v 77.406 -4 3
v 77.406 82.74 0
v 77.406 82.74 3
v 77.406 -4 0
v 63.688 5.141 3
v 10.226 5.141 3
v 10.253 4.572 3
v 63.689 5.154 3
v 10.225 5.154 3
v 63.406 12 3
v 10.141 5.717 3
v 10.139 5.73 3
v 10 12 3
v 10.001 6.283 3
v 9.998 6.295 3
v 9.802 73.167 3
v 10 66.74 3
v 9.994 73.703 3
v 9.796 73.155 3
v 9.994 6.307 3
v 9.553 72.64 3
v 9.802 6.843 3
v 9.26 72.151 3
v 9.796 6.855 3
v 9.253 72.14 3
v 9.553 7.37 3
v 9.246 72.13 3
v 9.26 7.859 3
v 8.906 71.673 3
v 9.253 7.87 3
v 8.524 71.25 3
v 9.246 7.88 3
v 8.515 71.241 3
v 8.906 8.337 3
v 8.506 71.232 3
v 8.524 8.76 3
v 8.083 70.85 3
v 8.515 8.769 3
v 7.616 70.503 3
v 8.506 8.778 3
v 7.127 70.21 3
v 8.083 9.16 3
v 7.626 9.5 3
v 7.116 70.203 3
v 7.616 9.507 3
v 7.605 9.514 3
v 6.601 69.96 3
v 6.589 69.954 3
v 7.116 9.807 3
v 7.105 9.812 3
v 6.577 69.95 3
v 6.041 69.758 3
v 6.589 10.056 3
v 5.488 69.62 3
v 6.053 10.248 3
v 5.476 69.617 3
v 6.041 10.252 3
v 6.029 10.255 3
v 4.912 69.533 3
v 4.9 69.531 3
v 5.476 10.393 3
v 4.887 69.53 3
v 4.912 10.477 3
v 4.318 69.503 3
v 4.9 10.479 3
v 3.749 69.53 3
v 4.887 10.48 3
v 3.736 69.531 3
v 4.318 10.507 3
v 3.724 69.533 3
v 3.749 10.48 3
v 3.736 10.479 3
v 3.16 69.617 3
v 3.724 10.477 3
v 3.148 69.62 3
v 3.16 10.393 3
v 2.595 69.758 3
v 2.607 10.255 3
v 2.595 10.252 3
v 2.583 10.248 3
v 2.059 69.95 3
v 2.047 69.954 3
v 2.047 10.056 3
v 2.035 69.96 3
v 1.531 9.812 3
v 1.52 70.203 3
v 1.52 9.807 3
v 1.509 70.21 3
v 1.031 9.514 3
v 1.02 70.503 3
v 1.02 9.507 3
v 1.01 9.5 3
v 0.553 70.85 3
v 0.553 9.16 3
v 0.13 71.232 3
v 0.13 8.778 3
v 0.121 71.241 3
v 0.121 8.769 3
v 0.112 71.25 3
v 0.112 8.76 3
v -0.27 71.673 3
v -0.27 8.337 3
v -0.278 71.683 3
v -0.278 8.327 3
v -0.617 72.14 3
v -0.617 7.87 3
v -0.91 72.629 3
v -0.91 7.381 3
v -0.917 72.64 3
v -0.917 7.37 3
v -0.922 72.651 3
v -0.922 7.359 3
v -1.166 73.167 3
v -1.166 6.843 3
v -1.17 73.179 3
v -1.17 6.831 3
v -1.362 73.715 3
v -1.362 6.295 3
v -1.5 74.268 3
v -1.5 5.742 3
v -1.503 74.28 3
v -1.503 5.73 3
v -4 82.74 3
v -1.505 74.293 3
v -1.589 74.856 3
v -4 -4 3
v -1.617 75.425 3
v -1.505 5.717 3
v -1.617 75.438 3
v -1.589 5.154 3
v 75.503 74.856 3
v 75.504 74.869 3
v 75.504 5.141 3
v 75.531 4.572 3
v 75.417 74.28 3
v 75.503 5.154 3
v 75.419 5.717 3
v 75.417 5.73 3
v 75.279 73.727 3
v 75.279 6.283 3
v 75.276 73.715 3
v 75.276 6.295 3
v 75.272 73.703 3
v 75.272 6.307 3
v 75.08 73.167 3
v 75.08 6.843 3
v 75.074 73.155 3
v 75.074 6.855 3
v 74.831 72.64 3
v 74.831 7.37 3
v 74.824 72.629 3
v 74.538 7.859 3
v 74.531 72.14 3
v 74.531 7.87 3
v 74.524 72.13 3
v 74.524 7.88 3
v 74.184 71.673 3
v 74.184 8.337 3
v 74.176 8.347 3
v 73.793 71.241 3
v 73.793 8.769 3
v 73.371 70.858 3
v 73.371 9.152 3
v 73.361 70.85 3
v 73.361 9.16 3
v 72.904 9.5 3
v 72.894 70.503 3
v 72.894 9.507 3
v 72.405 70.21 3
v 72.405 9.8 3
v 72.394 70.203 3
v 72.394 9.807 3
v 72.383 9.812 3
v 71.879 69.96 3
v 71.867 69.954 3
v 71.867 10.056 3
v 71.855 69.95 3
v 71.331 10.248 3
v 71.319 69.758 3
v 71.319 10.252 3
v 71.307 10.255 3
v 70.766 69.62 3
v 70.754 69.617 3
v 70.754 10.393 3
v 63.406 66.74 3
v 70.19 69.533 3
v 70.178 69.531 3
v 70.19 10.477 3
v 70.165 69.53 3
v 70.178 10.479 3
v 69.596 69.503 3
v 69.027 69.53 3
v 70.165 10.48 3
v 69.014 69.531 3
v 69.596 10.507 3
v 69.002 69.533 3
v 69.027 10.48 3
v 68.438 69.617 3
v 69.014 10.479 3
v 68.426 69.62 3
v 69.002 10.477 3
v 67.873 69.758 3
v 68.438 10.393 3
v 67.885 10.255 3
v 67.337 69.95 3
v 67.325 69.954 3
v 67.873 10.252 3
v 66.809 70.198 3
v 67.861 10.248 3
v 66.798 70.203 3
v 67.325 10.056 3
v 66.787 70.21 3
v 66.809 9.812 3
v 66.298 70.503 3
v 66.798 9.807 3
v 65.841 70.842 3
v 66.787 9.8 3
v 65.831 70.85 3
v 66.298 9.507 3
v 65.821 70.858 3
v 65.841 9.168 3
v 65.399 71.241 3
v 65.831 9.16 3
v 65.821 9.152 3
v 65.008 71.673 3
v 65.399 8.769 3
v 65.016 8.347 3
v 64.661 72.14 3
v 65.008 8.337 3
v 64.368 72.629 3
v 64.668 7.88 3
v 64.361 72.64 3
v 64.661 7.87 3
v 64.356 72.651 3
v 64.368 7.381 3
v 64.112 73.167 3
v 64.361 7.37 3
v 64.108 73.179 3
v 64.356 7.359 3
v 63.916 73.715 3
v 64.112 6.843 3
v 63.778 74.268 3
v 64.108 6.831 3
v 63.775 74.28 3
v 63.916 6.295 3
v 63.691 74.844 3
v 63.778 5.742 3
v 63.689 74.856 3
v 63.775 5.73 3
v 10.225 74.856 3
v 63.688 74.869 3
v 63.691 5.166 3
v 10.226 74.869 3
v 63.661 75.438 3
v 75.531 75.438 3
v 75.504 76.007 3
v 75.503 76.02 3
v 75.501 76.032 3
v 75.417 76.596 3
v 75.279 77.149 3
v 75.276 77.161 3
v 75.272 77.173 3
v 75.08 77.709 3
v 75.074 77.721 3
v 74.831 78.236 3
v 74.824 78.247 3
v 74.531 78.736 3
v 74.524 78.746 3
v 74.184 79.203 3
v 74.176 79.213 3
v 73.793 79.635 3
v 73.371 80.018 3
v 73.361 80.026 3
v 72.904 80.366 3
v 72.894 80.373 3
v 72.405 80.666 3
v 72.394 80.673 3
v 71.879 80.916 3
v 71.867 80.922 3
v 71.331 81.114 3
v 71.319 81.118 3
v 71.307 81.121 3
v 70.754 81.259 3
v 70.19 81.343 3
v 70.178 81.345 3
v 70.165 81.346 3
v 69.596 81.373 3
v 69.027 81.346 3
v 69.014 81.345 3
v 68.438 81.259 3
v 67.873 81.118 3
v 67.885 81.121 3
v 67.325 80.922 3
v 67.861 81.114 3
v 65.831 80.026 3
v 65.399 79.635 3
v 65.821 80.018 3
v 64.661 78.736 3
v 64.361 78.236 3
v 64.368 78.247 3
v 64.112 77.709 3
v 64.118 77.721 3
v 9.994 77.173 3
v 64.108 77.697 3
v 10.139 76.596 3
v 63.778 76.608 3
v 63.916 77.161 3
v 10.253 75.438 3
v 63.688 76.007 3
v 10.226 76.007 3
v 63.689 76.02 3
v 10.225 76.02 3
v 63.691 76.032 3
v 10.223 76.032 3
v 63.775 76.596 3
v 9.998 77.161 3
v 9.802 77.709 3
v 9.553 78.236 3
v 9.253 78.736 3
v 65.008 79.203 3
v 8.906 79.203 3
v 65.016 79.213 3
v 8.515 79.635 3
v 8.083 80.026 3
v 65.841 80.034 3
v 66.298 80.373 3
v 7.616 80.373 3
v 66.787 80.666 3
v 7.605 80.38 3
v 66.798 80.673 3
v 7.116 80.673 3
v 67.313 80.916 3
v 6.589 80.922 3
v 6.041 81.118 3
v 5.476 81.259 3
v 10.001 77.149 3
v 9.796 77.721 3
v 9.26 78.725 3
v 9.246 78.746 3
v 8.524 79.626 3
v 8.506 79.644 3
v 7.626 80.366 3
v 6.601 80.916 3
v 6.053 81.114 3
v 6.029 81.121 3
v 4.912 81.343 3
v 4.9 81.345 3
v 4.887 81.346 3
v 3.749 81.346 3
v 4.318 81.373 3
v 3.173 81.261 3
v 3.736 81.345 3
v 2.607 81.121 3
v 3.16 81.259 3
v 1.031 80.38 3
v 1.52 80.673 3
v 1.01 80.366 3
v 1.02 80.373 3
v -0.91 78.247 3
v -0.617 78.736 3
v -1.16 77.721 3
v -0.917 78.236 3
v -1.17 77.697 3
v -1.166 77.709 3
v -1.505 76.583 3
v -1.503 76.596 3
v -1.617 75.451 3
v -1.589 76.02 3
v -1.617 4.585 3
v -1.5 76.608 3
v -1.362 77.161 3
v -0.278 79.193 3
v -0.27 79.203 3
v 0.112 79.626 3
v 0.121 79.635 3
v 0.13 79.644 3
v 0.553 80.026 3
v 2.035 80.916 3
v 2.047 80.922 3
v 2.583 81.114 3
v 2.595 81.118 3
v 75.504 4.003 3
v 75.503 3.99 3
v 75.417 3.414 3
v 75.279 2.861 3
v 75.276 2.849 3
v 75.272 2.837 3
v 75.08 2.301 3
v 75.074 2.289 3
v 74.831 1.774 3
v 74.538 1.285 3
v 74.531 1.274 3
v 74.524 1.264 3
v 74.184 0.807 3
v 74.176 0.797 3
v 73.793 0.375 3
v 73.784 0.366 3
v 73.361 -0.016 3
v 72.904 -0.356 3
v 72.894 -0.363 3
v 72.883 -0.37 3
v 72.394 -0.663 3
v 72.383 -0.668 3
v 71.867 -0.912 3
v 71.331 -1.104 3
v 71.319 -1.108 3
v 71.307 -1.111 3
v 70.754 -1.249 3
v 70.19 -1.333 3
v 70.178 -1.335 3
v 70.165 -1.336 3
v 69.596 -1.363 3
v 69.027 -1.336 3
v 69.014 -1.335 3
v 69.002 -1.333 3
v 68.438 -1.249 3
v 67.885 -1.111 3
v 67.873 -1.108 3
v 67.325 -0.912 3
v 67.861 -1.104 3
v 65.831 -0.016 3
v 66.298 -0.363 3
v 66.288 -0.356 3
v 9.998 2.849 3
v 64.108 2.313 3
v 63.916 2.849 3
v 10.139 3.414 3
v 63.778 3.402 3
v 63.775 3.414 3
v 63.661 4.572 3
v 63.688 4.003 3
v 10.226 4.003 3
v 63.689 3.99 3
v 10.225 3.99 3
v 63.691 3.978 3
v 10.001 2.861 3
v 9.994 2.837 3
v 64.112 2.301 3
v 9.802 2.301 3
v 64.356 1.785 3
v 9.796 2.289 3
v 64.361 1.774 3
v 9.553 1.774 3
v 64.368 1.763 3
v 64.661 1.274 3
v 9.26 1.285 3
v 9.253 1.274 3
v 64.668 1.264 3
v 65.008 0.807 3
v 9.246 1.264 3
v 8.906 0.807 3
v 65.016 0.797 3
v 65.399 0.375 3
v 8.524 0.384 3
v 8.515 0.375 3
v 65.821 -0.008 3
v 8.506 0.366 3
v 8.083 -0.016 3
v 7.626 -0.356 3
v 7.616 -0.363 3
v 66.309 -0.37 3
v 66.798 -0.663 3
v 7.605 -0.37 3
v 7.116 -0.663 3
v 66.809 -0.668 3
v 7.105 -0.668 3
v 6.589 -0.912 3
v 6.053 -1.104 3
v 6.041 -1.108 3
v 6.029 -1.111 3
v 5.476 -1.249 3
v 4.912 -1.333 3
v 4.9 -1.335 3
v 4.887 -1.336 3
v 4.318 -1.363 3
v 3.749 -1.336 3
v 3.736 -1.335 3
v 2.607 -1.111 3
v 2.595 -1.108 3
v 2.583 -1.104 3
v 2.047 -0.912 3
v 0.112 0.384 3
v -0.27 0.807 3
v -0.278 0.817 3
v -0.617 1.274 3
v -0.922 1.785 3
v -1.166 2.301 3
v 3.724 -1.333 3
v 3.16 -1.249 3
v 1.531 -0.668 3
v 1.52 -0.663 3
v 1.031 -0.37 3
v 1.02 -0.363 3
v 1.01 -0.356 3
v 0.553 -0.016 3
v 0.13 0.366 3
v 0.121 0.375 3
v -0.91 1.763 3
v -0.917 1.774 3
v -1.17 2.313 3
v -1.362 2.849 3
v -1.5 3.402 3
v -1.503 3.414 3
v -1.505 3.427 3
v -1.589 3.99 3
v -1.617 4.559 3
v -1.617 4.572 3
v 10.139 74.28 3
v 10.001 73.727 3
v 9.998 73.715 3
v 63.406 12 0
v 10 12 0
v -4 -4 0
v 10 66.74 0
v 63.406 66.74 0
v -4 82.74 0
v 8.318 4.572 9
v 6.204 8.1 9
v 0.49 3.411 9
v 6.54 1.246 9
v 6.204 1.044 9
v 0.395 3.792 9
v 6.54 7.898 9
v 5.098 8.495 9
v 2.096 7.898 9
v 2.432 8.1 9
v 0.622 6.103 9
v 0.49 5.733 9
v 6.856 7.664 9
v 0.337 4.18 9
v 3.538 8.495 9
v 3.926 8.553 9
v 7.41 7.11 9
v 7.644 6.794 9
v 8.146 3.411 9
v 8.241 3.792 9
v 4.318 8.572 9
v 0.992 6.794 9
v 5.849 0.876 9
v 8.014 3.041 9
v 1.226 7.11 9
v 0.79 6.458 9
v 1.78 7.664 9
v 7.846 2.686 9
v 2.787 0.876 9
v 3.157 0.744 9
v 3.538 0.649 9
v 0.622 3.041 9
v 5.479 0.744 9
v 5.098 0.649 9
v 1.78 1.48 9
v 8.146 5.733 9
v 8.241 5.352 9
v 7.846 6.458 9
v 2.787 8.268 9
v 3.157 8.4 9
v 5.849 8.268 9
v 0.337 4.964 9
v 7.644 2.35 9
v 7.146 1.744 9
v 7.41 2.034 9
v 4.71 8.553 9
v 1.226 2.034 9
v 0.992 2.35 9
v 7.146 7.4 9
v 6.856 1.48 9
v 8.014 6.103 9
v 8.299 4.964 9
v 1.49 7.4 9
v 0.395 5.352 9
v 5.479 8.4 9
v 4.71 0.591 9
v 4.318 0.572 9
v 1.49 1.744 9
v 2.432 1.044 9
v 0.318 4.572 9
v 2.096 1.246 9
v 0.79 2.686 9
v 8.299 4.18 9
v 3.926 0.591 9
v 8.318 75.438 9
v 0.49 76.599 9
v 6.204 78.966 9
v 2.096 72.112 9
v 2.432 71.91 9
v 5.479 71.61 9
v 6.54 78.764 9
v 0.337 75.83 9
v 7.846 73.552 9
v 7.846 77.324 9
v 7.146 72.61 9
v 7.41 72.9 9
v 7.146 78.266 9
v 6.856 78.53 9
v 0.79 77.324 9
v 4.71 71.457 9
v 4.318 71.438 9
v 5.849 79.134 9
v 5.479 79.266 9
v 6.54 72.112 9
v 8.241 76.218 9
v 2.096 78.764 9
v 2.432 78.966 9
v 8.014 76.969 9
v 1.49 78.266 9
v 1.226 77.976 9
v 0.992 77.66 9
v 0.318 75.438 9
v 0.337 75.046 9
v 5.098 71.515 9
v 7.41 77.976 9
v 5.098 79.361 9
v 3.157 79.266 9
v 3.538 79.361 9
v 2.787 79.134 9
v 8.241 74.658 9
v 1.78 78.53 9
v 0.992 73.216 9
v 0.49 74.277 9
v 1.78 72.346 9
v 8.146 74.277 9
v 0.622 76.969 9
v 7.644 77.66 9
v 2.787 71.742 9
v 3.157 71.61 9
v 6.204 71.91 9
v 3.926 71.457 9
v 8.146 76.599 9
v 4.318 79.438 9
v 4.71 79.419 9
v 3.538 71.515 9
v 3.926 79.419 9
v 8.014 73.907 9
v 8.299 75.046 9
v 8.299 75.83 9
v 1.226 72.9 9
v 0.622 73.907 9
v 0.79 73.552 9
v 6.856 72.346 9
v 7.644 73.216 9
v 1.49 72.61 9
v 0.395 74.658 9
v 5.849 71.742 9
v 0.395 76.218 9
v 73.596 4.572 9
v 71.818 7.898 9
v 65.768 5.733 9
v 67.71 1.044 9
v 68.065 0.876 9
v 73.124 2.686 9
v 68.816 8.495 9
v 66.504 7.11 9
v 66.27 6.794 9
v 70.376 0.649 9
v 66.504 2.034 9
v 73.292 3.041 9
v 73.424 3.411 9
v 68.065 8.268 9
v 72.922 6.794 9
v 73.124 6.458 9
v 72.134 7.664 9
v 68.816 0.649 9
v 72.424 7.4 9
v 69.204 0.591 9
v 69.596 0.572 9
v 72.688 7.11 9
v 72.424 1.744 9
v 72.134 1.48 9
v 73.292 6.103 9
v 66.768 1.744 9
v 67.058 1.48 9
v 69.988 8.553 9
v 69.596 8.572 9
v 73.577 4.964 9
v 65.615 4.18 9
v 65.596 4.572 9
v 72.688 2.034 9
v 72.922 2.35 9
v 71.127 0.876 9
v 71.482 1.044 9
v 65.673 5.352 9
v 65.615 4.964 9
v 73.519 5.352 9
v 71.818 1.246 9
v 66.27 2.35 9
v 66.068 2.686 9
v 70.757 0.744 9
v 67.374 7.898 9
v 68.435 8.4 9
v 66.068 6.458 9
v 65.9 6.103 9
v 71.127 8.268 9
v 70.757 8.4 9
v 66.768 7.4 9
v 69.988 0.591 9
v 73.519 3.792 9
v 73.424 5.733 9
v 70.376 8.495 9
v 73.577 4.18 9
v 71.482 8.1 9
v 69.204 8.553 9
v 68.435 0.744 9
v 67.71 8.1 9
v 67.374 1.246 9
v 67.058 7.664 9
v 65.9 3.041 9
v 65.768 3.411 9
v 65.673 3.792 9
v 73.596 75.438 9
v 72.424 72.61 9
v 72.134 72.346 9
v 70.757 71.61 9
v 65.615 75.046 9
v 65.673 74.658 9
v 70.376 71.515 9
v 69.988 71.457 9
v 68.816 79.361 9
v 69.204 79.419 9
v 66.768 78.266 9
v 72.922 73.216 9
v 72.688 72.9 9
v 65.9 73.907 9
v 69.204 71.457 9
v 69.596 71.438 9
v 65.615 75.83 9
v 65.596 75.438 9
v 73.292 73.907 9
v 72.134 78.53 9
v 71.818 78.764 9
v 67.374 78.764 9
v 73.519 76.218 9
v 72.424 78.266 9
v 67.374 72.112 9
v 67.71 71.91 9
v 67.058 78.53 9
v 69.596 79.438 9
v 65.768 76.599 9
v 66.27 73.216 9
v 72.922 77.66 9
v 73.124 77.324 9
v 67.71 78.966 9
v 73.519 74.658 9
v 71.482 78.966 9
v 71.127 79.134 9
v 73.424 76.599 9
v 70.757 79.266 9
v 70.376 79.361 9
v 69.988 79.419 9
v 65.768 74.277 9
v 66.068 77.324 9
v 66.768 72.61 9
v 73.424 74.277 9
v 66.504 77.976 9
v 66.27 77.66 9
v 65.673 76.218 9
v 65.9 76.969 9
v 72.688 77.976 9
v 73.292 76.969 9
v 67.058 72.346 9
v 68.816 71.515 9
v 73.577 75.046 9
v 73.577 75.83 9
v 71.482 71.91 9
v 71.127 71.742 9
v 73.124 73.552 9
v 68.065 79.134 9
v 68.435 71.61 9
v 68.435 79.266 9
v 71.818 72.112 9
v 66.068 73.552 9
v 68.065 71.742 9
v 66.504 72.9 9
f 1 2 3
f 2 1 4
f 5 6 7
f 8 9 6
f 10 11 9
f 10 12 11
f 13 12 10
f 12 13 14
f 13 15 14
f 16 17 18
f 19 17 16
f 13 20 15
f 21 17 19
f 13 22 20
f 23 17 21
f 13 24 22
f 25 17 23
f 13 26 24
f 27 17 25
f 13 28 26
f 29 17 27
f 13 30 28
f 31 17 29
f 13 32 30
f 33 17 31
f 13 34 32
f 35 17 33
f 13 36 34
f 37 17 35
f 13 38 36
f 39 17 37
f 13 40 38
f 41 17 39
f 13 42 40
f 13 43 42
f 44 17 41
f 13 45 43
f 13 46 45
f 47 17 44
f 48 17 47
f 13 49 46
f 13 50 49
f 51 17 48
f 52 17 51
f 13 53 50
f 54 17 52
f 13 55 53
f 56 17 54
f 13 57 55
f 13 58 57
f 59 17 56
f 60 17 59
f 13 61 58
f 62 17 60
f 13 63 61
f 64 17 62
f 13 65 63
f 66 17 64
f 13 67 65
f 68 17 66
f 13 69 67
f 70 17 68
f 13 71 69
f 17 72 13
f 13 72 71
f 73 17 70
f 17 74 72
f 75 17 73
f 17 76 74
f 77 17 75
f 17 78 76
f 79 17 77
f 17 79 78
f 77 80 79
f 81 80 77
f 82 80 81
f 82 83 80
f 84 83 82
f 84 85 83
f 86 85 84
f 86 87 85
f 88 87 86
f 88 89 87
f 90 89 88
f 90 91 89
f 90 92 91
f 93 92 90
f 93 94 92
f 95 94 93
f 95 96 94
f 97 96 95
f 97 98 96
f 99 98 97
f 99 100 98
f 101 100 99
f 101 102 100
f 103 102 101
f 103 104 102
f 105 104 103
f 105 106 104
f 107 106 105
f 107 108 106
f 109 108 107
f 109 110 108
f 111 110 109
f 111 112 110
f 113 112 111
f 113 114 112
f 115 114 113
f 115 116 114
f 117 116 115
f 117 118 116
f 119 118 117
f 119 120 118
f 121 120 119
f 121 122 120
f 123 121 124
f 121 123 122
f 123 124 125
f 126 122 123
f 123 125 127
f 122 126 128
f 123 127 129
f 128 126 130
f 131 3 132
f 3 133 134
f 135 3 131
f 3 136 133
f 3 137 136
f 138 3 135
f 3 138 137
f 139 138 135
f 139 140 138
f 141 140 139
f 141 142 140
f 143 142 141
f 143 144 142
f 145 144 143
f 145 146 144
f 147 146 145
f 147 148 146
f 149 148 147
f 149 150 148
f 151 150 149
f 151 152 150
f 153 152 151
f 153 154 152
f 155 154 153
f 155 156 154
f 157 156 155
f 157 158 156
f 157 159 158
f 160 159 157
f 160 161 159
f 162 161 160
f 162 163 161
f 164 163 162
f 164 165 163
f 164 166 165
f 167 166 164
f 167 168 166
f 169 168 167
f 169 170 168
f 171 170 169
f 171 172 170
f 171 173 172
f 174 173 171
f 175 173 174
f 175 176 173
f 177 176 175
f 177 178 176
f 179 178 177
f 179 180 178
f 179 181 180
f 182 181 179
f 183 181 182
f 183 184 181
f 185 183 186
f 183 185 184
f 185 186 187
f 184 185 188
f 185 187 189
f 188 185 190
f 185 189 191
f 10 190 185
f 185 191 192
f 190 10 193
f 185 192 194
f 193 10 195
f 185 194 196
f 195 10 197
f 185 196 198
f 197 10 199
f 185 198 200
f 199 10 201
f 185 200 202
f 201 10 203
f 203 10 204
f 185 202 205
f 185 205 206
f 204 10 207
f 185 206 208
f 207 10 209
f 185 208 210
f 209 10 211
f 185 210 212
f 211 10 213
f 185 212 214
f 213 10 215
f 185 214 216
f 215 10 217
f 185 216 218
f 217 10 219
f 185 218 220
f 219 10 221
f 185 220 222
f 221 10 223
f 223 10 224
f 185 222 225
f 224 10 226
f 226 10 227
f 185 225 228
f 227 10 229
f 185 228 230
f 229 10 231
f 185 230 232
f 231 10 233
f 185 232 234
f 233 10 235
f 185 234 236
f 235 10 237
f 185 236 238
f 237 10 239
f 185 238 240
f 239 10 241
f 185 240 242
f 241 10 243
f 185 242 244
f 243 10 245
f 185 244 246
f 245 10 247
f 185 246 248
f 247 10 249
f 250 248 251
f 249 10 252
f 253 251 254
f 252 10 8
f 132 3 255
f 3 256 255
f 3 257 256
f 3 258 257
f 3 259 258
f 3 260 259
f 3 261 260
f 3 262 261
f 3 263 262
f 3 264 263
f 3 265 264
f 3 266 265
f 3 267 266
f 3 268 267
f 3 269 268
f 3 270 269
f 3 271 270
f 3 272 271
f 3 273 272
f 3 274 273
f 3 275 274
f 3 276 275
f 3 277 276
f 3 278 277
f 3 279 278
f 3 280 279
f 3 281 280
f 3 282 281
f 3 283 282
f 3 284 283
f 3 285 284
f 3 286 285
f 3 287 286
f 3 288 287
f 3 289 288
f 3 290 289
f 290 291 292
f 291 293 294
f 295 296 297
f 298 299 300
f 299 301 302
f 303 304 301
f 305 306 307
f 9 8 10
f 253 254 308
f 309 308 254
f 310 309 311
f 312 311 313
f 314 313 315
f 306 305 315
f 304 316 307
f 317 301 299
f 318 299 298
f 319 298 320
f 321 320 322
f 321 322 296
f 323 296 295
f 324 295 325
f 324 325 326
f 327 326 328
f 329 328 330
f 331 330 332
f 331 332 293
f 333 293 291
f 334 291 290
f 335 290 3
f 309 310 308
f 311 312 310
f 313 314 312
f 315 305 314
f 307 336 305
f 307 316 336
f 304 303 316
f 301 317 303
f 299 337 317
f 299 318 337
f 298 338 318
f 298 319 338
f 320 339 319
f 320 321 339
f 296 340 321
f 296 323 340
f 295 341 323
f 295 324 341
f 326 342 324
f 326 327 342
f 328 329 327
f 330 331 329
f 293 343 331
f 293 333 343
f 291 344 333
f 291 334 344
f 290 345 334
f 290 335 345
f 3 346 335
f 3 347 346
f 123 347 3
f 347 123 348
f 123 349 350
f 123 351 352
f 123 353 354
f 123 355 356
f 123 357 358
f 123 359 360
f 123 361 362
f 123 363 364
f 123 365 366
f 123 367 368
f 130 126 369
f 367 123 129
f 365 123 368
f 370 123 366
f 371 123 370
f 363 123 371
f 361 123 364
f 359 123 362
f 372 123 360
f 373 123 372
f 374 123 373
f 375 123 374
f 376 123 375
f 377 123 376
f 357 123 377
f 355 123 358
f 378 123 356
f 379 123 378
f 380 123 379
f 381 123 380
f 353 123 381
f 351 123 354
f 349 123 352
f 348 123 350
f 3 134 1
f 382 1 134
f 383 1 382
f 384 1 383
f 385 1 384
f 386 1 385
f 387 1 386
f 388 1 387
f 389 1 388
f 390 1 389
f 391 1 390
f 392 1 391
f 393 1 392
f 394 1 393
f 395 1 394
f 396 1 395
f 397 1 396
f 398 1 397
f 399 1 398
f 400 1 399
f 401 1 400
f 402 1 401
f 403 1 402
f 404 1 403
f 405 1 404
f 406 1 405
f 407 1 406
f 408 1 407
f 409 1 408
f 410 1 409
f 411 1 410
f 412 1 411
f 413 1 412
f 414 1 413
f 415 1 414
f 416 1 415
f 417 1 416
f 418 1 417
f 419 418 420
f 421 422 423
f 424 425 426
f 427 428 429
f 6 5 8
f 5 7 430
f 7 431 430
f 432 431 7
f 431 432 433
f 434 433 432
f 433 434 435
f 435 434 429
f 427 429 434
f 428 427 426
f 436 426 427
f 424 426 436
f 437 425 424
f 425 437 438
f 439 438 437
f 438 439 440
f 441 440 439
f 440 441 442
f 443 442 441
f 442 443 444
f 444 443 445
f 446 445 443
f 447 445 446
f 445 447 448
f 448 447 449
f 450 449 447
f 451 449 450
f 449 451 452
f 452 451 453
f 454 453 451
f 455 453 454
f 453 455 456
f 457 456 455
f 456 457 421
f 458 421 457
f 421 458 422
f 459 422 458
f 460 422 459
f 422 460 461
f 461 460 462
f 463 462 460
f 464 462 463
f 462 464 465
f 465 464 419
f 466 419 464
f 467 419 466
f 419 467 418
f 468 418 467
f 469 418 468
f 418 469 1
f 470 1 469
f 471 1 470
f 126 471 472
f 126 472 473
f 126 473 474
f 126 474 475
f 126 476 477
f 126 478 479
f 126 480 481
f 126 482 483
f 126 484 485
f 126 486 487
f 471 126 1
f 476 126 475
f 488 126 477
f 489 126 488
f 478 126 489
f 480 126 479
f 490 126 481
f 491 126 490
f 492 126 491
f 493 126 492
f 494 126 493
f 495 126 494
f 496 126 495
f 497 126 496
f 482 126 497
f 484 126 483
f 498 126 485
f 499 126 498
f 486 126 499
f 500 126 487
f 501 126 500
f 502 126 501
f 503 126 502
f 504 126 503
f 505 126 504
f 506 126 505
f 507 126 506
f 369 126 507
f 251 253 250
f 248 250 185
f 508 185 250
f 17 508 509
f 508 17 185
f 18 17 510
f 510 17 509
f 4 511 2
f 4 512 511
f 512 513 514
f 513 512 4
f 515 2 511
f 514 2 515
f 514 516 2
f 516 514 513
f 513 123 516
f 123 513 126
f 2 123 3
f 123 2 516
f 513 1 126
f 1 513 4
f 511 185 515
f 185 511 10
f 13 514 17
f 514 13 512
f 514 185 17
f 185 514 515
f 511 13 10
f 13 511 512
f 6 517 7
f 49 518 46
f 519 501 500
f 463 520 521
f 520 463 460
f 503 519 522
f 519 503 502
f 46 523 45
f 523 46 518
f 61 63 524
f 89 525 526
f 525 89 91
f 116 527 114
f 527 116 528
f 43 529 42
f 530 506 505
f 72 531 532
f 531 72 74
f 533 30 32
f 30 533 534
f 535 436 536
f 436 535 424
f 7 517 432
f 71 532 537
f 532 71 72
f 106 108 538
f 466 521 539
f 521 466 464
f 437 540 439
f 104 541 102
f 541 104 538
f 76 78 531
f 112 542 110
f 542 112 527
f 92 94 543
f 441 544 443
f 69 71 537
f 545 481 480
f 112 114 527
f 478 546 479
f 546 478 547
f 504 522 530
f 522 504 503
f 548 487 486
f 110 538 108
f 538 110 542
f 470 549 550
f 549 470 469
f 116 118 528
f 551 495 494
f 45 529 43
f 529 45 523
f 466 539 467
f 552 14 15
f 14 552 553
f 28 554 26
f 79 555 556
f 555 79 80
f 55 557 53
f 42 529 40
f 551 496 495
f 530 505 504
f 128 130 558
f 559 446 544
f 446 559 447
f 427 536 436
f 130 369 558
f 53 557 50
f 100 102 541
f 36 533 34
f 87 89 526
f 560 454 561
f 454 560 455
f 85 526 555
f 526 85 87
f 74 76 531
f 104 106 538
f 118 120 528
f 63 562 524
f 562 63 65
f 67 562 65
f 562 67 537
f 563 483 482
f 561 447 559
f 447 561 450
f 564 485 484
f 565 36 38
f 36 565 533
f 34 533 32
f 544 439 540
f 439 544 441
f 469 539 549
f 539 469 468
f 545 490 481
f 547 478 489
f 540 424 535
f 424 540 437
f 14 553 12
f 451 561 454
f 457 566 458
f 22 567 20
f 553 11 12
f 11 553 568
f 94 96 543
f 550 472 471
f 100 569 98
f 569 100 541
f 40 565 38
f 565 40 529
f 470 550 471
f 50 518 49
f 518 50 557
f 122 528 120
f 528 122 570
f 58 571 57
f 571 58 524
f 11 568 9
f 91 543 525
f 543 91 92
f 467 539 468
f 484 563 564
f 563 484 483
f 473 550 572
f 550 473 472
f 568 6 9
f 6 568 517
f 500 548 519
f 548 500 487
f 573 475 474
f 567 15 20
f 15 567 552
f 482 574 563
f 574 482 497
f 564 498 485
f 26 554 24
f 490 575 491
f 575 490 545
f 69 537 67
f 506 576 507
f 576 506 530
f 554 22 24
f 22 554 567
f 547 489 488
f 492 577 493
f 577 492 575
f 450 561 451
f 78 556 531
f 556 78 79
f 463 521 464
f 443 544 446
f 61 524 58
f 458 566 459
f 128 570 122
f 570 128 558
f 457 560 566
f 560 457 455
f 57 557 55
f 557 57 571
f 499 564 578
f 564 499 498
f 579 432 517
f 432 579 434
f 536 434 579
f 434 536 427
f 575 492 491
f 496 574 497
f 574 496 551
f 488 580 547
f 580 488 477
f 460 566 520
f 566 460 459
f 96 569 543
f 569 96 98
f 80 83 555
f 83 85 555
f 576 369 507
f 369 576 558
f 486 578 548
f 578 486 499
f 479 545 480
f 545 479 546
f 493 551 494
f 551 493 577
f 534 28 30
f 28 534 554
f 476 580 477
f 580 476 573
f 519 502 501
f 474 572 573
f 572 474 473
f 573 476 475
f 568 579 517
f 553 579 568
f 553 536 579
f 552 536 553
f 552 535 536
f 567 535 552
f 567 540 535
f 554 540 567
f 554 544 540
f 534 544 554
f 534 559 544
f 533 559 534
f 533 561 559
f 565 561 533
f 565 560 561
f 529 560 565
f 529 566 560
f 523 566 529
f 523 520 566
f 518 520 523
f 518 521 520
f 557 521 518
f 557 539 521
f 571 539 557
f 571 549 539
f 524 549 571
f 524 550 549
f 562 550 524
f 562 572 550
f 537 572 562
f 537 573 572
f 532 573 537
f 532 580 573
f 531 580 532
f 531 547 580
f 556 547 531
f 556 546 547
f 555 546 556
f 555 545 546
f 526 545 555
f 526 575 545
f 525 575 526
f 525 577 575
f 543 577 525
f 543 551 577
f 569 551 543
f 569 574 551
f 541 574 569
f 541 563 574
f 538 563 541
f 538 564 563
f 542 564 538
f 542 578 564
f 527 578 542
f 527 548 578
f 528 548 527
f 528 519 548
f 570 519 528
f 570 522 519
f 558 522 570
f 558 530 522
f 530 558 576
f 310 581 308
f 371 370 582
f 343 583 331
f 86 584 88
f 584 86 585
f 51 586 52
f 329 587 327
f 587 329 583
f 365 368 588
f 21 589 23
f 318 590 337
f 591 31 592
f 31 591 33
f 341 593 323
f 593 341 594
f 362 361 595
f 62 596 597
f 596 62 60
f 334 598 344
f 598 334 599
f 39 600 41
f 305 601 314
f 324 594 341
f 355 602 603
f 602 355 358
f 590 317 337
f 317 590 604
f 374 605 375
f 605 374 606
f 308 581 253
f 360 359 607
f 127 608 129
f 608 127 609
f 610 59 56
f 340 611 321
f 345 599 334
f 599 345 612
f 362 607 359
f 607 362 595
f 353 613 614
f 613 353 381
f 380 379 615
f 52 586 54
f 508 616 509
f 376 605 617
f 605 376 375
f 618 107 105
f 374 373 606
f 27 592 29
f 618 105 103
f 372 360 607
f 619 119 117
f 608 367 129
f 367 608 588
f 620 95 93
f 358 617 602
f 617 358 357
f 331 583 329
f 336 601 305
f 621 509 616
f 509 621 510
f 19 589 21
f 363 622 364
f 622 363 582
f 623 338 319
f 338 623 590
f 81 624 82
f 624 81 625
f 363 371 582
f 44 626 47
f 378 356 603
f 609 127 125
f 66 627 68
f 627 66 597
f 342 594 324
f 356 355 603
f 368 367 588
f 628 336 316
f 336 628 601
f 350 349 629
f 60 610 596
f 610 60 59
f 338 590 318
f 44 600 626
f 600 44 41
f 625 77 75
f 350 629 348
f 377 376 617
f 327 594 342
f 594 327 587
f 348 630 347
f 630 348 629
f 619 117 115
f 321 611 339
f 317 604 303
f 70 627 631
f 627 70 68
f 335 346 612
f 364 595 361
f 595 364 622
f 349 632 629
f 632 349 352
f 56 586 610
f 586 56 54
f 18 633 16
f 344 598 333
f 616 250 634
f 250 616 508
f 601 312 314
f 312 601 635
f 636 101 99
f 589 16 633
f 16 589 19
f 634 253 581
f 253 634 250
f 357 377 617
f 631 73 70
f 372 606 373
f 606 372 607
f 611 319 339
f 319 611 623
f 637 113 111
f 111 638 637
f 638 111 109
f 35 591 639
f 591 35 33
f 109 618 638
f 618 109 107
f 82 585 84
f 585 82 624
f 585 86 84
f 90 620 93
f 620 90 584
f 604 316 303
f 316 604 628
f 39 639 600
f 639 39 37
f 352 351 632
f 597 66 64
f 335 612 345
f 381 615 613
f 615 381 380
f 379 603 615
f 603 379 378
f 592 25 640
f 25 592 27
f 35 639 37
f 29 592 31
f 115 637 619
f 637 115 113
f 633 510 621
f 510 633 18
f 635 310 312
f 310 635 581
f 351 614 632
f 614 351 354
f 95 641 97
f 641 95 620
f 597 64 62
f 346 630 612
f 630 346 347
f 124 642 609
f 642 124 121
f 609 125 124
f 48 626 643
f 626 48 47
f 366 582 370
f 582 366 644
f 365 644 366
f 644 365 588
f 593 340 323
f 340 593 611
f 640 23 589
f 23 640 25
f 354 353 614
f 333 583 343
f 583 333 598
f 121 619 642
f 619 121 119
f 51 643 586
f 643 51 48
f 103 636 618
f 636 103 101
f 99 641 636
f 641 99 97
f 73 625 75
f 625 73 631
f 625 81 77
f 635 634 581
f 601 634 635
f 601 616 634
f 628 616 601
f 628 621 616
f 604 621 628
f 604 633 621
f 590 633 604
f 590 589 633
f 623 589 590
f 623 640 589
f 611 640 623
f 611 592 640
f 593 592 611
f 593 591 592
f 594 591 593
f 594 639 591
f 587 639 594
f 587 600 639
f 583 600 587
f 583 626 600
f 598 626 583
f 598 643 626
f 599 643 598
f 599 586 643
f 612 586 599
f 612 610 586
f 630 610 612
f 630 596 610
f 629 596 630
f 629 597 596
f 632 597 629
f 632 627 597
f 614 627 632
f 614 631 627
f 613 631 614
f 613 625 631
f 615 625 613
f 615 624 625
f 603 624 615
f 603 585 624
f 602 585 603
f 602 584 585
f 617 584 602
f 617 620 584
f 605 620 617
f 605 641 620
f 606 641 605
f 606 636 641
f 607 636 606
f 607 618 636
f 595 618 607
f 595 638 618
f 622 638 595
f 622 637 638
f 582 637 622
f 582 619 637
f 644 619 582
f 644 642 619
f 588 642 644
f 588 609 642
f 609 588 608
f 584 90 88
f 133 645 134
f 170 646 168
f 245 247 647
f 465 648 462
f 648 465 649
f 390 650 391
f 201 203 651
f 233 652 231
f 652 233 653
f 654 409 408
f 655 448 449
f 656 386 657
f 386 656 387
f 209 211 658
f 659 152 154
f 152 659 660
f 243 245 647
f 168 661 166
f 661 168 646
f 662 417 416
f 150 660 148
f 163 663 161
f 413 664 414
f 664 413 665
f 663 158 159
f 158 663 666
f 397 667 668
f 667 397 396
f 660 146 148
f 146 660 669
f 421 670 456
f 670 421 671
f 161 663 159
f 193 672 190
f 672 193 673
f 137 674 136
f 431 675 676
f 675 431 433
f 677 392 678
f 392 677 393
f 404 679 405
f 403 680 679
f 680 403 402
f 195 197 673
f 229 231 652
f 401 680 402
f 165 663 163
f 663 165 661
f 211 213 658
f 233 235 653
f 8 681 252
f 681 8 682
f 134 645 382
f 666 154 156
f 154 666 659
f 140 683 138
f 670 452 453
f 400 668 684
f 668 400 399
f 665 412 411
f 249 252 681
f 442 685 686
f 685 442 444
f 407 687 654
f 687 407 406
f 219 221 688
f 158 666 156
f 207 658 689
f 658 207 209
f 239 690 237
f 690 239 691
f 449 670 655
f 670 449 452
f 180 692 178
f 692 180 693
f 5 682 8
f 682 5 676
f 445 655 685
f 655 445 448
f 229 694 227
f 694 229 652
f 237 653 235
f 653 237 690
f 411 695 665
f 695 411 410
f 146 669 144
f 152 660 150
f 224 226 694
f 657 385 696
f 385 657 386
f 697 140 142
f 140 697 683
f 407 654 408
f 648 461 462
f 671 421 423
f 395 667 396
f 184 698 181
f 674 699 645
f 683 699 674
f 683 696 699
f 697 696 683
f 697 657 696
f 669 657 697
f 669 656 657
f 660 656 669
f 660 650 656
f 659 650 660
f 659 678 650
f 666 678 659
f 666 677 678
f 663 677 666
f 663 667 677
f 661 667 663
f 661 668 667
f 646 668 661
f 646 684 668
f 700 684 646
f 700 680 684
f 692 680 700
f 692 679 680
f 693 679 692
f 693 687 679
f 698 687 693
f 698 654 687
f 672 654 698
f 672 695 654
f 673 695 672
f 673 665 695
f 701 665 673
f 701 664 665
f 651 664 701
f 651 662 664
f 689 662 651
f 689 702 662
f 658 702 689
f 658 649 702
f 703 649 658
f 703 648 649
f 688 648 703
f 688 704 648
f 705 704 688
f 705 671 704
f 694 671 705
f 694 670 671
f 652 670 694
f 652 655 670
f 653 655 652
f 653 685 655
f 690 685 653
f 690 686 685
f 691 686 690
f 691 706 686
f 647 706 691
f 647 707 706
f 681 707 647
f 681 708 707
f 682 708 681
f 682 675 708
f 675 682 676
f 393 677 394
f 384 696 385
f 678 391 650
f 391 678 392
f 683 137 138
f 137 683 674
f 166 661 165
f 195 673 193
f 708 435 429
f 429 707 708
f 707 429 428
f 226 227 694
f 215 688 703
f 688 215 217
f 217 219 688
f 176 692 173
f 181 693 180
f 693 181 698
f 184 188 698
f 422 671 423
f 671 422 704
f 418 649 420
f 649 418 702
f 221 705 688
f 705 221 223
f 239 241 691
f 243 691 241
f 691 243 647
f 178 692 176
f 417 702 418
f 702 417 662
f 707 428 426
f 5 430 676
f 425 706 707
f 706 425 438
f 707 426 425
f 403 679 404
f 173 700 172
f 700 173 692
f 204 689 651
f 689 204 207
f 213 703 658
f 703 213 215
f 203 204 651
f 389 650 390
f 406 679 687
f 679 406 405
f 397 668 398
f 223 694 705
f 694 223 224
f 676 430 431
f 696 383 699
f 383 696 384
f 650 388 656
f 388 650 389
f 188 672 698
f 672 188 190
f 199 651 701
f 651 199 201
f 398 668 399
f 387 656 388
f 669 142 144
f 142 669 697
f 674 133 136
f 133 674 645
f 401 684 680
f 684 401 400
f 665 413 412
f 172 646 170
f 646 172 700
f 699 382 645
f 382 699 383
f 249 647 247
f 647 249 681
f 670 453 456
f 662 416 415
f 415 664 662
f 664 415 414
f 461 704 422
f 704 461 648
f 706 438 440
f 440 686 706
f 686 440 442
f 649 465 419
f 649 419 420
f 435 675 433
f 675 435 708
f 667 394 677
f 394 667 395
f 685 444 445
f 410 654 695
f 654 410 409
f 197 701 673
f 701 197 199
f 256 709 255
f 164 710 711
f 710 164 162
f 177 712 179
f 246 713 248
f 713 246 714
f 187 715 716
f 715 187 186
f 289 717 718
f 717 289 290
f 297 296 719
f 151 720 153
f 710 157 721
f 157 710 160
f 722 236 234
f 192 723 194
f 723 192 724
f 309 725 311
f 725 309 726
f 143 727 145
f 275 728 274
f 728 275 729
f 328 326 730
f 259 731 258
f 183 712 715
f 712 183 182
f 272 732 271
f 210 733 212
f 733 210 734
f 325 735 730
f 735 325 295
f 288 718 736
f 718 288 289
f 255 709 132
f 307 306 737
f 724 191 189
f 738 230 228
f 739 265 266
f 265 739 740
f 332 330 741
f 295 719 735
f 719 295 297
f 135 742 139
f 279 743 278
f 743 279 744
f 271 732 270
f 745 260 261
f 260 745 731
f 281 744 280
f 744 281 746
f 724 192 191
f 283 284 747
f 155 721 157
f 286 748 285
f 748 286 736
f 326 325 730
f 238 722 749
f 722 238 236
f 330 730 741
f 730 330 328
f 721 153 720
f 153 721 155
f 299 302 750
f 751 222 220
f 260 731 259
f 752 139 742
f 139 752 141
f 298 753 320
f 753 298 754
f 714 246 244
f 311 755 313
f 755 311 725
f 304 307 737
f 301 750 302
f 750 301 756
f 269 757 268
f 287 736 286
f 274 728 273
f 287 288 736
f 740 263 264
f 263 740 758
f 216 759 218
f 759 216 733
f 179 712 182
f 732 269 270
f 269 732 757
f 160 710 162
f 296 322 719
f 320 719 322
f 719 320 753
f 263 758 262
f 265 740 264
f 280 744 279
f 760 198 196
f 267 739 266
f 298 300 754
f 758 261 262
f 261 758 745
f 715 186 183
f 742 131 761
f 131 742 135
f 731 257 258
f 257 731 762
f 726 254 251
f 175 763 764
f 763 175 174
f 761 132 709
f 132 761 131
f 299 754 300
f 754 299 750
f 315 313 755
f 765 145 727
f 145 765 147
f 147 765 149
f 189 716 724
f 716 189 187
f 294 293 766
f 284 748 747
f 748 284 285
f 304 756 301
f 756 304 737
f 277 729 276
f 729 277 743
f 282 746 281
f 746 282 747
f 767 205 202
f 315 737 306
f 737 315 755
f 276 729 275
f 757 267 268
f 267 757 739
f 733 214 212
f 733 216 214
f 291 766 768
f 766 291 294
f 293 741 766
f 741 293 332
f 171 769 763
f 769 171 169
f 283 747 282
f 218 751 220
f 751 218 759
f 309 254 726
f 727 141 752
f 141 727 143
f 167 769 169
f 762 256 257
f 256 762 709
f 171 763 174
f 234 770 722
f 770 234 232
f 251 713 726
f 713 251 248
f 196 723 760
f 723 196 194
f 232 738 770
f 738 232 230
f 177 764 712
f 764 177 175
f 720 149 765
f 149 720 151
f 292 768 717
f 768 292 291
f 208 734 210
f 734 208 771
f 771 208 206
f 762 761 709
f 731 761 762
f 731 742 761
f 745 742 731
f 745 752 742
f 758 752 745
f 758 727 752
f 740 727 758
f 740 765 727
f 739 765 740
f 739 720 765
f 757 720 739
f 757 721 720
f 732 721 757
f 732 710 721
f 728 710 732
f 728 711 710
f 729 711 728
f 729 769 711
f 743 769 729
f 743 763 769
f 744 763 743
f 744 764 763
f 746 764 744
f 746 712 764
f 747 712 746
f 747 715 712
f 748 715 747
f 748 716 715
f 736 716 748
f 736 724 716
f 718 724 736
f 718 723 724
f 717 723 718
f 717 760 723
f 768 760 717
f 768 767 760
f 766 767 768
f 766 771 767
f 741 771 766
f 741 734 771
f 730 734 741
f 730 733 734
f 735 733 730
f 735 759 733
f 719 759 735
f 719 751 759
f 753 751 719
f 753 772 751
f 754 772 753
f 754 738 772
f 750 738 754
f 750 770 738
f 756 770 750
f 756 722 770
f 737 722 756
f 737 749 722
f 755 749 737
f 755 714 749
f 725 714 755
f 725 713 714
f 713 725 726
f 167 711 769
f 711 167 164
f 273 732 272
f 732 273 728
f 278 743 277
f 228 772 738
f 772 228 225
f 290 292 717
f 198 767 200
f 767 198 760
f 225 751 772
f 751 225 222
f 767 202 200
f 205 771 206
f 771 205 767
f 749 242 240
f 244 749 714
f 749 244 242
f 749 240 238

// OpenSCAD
// Units: mm. PCB stand worked example.
union() {
  difference() {
    translate([-4, -4, 0])
      cube([81.406, 86.740, 3]);
    translate([10, 12, -0.1])
      cube([53.406, 54.740, 3.2]);
  }
  translate([4.318, 4.572, 2.8])
    cylinder(h=6.2, d1=12, d2=8, $fn=64);
  translate([4.318, 75.438, 2.8])
    cylinder(h=6.2, d1=12, d2=8, $fn=64);
  translate([69.596, 4.572, 2.8])
    cylinder(h=6.2, d1=12, d2=8, $fn=64);
  translate([69.596, 75.438, 2.8])
    cylinder(h=6.2, d1=12, d2=8, $fn=64);
}
